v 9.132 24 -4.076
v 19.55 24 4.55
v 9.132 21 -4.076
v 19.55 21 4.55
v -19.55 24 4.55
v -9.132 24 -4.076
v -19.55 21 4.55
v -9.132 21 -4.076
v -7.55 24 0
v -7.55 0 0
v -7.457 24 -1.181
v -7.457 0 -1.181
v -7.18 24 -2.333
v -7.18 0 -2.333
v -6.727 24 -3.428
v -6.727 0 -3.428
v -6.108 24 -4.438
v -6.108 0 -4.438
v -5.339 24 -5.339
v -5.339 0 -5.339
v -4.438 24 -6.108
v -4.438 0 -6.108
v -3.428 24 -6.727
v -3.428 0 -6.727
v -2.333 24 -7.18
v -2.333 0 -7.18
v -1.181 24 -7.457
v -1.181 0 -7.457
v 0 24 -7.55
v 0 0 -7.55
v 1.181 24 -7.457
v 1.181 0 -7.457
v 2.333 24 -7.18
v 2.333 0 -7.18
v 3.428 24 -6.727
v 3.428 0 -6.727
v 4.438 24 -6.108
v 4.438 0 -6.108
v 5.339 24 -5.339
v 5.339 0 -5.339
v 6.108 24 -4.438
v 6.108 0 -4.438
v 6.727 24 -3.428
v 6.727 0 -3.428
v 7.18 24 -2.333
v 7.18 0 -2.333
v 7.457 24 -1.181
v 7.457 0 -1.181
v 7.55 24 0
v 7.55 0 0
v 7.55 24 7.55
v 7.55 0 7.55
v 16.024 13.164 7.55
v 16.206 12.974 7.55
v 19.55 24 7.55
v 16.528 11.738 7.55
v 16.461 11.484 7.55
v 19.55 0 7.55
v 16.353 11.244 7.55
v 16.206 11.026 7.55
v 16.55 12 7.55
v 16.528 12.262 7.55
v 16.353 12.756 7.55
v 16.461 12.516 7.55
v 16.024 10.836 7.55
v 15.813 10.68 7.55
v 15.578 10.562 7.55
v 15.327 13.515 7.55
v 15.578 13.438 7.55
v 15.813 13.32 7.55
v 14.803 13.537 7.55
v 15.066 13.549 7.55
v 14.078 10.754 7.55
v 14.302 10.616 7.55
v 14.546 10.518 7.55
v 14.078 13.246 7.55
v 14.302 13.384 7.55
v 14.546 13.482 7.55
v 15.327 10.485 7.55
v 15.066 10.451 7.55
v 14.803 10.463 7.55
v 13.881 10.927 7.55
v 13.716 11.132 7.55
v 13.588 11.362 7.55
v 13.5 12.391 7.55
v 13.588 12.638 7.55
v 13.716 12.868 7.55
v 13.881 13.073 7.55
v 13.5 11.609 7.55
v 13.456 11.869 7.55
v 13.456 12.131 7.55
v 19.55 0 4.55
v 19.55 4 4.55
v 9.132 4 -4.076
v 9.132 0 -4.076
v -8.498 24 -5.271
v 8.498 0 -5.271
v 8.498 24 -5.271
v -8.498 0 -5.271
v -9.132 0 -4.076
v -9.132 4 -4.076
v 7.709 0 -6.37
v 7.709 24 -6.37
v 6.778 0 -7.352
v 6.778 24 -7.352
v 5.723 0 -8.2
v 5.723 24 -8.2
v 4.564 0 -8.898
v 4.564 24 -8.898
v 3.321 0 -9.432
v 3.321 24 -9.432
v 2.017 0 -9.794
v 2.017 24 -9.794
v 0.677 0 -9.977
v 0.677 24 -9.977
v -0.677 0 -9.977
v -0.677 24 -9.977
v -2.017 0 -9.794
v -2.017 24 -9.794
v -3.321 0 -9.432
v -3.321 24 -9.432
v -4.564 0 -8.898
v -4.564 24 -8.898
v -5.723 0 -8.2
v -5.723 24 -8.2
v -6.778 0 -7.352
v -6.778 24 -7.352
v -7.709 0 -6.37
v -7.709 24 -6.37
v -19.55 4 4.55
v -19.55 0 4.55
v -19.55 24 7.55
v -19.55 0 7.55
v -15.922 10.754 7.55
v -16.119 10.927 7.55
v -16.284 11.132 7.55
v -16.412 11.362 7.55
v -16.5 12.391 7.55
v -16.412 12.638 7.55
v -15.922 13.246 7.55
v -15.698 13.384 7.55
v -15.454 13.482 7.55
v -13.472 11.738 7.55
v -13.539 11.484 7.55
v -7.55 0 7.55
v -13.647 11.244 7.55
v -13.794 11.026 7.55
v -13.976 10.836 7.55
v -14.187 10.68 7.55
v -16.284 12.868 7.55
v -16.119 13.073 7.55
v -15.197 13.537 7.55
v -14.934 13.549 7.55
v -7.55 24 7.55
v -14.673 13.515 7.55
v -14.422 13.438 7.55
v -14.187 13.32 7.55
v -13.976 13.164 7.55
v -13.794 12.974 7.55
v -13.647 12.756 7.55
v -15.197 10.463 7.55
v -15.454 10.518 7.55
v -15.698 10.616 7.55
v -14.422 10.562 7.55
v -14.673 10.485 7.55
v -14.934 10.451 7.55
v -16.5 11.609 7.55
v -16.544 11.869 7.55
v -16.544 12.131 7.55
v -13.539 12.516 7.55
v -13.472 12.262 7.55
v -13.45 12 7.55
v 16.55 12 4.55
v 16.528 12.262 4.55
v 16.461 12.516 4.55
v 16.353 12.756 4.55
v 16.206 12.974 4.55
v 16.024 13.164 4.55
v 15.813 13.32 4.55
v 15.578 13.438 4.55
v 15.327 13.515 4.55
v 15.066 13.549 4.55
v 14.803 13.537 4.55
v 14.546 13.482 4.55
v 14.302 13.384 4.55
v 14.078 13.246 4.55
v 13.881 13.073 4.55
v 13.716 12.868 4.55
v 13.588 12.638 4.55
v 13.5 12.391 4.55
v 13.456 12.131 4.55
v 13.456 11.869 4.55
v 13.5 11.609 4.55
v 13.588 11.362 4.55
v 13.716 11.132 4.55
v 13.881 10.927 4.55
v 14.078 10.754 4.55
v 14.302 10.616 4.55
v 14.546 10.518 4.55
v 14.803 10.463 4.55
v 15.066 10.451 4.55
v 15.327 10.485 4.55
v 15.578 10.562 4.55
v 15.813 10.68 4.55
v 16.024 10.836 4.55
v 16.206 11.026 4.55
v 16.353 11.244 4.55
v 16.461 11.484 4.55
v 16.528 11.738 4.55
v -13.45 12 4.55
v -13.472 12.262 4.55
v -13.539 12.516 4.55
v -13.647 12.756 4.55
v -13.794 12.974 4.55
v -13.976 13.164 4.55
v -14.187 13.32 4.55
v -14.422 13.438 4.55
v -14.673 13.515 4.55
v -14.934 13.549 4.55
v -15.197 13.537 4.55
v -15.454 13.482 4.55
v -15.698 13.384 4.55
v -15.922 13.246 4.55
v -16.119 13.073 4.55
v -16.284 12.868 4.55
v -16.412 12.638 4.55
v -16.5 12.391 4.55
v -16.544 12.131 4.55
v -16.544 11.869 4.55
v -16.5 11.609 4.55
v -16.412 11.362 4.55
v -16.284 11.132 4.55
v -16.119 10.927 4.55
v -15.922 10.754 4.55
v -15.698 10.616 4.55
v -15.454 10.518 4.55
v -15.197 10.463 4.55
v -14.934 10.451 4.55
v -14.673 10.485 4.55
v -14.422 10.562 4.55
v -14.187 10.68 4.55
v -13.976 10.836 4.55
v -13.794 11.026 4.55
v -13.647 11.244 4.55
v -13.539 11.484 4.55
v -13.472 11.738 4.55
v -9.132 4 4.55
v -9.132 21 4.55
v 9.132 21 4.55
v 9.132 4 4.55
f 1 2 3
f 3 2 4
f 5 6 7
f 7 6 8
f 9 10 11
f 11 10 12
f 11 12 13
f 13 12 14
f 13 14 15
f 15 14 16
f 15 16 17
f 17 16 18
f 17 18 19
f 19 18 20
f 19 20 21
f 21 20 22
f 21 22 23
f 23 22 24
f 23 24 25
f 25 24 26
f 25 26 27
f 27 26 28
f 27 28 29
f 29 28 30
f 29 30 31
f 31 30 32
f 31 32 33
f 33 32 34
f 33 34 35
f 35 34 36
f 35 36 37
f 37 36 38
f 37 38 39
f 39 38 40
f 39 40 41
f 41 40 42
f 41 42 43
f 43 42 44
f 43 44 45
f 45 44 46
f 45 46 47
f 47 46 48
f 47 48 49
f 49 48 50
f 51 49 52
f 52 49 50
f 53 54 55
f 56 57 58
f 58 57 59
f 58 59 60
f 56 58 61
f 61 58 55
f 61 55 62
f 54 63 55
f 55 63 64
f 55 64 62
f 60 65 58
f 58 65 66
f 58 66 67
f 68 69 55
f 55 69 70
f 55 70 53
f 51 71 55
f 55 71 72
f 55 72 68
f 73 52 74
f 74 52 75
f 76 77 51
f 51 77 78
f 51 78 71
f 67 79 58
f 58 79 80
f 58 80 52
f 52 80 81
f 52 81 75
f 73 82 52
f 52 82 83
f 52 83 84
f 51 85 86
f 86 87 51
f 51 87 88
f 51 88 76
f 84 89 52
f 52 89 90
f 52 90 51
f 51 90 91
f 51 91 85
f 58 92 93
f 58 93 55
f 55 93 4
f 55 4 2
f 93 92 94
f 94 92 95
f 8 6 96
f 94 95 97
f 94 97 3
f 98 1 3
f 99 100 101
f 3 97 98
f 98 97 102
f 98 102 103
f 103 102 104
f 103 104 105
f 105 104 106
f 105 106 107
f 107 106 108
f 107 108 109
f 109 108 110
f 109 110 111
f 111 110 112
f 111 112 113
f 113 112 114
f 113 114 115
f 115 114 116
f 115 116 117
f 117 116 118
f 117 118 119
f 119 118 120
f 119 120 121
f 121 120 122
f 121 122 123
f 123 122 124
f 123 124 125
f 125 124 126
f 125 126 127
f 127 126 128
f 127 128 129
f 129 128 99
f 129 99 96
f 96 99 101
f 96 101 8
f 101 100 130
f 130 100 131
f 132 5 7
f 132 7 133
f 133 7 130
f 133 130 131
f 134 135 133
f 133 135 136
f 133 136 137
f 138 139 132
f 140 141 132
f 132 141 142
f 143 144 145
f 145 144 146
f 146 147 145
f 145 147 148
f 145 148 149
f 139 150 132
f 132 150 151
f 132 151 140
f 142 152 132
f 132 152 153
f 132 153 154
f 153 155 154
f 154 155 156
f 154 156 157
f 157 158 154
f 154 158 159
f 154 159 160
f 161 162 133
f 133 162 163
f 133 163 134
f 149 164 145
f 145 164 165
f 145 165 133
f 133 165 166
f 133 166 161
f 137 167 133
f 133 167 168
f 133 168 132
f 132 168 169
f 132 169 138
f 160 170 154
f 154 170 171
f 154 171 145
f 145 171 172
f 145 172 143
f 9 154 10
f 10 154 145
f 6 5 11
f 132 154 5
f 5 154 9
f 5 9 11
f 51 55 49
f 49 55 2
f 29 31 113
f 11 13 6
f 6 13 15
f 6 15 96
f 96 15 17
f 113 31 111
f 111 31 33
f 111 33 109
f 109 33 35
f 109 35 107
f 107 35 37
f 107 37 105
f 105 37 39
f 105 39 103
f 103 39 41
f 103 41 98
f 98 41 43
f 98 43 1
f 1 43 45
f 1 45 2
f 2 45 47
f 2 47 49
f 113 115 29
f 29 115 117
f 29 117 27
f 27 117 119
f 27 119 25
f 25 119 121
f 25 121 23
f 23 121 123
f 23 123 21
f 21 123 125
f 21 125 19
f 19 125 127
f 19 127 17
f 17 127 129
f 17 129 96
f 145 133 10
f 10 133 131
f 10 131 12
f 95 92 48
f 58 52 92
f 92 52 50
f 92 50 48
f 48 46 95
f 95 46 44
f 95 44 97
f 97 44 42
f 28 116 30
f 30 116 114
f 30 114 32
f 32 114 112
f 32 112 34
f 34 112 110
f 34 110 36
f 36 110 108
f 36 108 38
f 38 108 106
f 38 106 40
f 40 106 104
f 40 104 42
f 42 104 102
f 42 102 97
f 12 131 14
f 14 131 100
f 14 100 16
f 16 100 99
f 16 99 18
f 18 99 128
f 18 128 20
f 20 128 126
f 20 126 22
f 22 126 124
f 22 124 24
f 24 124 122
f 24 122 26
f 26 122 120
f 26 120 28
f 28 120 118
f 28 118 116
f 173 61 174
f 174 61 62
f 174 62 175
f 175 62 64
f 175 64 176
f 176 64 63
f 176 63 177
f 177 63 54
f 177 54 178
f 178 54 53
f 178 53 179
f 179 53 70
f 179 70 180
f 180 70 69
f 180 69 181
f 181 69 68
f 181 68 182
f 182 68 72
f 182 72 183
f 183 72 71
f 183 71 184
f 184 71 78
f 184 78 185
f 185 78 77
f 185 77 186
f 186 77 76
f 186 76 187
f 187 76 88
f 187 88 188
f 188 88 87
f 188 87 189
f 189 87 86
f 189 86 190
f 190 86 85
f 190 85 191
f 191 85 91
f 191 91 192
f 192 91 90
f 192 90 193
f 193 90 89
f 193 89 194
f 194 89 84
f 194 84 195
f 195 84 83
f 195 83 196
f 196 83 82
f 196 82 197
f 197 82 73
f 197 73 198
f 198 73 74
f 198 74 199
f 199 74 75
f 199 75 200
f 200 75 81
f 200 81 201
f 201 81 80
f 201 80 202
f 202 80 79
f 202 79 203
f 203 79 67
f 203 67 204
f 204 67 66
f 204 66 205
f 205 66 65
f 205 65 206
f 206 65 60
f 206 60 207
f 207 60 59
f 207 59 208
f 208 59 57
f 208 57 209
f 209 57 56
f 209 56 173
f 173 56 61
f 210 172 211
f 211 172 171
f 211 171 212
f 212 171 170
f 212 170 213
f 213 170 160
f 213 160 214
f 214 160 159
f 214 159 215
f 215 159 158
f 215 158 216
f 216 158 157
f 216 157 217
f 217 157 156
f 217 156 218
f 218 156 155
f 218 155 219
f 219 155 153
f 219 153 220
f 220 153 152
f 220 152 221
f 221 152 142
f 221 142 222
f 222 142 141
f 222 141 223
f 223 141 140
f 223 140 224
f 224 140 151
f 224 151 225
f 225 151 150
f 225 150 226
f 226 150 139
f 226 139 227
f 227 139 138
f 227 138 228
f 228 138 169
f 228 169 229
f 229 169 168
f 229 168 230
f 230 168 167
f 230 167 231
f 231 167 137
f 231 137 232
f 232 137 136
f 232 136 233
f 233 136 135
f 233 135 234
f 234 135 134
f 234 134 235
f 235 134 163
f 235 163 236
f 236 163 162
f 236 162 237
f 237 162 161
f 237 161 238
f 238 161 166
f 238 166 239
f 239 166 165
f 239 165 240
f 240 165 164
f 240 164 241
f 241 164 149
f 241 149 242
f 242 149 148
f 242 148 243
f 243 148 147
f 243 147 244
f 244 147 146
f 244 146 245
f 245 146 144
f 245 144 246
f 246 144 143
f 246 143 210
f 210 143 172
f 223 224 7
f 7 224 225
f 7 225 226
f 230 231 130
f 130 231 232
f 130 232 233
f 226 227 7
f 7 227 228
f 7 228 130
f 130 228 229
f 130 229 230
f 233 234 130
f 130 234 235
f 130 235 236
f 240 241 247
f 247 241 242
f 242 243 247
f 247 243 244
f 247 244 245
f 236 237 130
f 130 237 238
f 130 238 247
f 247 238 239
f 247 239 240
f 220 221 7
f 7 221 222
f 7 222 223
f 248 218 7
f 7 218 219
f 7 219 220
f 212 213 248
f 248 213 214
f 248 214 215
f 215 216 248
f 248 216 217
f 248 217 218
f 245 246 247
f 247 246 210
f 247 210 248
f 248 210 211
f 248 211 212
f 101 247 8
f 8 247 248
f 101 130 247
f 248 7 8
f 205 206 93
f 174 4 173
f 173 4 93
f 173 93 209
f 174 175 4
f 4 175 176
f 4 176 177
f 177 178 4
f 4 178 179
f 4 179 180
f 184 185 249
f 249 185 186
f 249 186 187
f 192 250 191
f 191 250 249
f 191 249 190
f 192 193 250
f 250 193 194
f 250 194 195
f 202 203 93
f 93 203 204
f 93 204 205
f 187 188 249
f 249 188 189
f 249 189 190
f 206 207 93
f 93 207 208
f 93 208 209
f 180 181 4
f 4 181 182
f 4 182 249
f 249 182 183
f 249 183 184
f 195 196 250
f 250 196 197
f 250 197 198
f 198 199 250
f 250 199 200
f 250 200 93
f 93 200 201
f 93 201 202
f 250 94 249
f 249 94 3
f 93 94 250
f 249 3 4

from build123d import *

# Parameters (mm, degrees)
SALIENTE_EXTRUIR1_DEPTH = 24
CROQUIS3_R              = 1.55
CORTAR_EXTRUIR1_DEPTH   = 18.55
CORTAR_EXTRUIR2_DEPTH   = 17
CORTAR_EXTRUIR3_DEPTH   = 17


with BuildPart() as part:
    # Croquis2 → Saliente-Extruir1 (new body)
    with BuildSketch(Plane(origin=(0, 0, 0), x_dir=(1, 0, 0), z_dir=(0, 1, 0))):
        with BuildLine():
            Line((-7.55, 0), (-7.55, -7.55))
            Line((-7.55, -7.55), (-19.55, -7.55))
            Line((-19.55, -7.55), (-19.55, -4.55))
            Line((-19.55, -4.55), (-9.131754542, 4.075666691))
            ThreePointArc((-9.131754542, 4.075666691), (-2e-09, 10), (9.131754541, 4.075666695))
            Line((9.131754541, 4.075666695), (19.55, -4.55))
            Line((19.55, -4.55), (19.55, -7.55))
            Line((19.55, -7.55), (7.55, -7.55))
            Line((7.55, -7.55), (7.55, 0))
            ThreePointArc((7.55, 0), (0, 7.55), (-7.55, 0))
        make_face()
    extrude(amount=SALIENTE_EXTRUIR1_DEPTH)

    # Croquis3 → Cortar-Extruir1 (cut, through all)
    with BuildSketch(Plane.XY.offset(7.55)):
        with Locations((15, 12)):
            Circle(CROQUIS3_R)
        with Locations((-15, 12)):
            Circle(CROQUIS3_R)
    extrude(amount=-CORTAR_EXTRUIR1_DEPTH, mode=Mode.SUBTRACT)

    # Croquis4 → Cortar-Extruir2 (cut)
    with BuildSketch(Plane(origin=(0, 21, 0), x_dir=(1, 0, 0), z_dir=(0, 1, 0))):
        Polygon((-9.131754542, 4.075666691), (-19.55, -4.55), (-9.131754542, -4.55), align=None)
    extrude(amount=-CORTAR_EXTRUIR2_DEPTH, mode=Mode.SUBTRACT)

    # Croquis5 → Cortar-Extruir3 (cut)
    with BuildSketch(Plane(origin=(0, 21, 0), x_dir=(1, 0, 0), z_dir=(0, 1, 0))):
        Polygon((19.55, -4.55), (9.131754541, 4.075666695), (9.131754541, -4.55), align=None)
    extrude(amount=-CORTAR_EXTRUIR3_DEPTH, mode=Mode.SUBTRACT)


solid = part.part
